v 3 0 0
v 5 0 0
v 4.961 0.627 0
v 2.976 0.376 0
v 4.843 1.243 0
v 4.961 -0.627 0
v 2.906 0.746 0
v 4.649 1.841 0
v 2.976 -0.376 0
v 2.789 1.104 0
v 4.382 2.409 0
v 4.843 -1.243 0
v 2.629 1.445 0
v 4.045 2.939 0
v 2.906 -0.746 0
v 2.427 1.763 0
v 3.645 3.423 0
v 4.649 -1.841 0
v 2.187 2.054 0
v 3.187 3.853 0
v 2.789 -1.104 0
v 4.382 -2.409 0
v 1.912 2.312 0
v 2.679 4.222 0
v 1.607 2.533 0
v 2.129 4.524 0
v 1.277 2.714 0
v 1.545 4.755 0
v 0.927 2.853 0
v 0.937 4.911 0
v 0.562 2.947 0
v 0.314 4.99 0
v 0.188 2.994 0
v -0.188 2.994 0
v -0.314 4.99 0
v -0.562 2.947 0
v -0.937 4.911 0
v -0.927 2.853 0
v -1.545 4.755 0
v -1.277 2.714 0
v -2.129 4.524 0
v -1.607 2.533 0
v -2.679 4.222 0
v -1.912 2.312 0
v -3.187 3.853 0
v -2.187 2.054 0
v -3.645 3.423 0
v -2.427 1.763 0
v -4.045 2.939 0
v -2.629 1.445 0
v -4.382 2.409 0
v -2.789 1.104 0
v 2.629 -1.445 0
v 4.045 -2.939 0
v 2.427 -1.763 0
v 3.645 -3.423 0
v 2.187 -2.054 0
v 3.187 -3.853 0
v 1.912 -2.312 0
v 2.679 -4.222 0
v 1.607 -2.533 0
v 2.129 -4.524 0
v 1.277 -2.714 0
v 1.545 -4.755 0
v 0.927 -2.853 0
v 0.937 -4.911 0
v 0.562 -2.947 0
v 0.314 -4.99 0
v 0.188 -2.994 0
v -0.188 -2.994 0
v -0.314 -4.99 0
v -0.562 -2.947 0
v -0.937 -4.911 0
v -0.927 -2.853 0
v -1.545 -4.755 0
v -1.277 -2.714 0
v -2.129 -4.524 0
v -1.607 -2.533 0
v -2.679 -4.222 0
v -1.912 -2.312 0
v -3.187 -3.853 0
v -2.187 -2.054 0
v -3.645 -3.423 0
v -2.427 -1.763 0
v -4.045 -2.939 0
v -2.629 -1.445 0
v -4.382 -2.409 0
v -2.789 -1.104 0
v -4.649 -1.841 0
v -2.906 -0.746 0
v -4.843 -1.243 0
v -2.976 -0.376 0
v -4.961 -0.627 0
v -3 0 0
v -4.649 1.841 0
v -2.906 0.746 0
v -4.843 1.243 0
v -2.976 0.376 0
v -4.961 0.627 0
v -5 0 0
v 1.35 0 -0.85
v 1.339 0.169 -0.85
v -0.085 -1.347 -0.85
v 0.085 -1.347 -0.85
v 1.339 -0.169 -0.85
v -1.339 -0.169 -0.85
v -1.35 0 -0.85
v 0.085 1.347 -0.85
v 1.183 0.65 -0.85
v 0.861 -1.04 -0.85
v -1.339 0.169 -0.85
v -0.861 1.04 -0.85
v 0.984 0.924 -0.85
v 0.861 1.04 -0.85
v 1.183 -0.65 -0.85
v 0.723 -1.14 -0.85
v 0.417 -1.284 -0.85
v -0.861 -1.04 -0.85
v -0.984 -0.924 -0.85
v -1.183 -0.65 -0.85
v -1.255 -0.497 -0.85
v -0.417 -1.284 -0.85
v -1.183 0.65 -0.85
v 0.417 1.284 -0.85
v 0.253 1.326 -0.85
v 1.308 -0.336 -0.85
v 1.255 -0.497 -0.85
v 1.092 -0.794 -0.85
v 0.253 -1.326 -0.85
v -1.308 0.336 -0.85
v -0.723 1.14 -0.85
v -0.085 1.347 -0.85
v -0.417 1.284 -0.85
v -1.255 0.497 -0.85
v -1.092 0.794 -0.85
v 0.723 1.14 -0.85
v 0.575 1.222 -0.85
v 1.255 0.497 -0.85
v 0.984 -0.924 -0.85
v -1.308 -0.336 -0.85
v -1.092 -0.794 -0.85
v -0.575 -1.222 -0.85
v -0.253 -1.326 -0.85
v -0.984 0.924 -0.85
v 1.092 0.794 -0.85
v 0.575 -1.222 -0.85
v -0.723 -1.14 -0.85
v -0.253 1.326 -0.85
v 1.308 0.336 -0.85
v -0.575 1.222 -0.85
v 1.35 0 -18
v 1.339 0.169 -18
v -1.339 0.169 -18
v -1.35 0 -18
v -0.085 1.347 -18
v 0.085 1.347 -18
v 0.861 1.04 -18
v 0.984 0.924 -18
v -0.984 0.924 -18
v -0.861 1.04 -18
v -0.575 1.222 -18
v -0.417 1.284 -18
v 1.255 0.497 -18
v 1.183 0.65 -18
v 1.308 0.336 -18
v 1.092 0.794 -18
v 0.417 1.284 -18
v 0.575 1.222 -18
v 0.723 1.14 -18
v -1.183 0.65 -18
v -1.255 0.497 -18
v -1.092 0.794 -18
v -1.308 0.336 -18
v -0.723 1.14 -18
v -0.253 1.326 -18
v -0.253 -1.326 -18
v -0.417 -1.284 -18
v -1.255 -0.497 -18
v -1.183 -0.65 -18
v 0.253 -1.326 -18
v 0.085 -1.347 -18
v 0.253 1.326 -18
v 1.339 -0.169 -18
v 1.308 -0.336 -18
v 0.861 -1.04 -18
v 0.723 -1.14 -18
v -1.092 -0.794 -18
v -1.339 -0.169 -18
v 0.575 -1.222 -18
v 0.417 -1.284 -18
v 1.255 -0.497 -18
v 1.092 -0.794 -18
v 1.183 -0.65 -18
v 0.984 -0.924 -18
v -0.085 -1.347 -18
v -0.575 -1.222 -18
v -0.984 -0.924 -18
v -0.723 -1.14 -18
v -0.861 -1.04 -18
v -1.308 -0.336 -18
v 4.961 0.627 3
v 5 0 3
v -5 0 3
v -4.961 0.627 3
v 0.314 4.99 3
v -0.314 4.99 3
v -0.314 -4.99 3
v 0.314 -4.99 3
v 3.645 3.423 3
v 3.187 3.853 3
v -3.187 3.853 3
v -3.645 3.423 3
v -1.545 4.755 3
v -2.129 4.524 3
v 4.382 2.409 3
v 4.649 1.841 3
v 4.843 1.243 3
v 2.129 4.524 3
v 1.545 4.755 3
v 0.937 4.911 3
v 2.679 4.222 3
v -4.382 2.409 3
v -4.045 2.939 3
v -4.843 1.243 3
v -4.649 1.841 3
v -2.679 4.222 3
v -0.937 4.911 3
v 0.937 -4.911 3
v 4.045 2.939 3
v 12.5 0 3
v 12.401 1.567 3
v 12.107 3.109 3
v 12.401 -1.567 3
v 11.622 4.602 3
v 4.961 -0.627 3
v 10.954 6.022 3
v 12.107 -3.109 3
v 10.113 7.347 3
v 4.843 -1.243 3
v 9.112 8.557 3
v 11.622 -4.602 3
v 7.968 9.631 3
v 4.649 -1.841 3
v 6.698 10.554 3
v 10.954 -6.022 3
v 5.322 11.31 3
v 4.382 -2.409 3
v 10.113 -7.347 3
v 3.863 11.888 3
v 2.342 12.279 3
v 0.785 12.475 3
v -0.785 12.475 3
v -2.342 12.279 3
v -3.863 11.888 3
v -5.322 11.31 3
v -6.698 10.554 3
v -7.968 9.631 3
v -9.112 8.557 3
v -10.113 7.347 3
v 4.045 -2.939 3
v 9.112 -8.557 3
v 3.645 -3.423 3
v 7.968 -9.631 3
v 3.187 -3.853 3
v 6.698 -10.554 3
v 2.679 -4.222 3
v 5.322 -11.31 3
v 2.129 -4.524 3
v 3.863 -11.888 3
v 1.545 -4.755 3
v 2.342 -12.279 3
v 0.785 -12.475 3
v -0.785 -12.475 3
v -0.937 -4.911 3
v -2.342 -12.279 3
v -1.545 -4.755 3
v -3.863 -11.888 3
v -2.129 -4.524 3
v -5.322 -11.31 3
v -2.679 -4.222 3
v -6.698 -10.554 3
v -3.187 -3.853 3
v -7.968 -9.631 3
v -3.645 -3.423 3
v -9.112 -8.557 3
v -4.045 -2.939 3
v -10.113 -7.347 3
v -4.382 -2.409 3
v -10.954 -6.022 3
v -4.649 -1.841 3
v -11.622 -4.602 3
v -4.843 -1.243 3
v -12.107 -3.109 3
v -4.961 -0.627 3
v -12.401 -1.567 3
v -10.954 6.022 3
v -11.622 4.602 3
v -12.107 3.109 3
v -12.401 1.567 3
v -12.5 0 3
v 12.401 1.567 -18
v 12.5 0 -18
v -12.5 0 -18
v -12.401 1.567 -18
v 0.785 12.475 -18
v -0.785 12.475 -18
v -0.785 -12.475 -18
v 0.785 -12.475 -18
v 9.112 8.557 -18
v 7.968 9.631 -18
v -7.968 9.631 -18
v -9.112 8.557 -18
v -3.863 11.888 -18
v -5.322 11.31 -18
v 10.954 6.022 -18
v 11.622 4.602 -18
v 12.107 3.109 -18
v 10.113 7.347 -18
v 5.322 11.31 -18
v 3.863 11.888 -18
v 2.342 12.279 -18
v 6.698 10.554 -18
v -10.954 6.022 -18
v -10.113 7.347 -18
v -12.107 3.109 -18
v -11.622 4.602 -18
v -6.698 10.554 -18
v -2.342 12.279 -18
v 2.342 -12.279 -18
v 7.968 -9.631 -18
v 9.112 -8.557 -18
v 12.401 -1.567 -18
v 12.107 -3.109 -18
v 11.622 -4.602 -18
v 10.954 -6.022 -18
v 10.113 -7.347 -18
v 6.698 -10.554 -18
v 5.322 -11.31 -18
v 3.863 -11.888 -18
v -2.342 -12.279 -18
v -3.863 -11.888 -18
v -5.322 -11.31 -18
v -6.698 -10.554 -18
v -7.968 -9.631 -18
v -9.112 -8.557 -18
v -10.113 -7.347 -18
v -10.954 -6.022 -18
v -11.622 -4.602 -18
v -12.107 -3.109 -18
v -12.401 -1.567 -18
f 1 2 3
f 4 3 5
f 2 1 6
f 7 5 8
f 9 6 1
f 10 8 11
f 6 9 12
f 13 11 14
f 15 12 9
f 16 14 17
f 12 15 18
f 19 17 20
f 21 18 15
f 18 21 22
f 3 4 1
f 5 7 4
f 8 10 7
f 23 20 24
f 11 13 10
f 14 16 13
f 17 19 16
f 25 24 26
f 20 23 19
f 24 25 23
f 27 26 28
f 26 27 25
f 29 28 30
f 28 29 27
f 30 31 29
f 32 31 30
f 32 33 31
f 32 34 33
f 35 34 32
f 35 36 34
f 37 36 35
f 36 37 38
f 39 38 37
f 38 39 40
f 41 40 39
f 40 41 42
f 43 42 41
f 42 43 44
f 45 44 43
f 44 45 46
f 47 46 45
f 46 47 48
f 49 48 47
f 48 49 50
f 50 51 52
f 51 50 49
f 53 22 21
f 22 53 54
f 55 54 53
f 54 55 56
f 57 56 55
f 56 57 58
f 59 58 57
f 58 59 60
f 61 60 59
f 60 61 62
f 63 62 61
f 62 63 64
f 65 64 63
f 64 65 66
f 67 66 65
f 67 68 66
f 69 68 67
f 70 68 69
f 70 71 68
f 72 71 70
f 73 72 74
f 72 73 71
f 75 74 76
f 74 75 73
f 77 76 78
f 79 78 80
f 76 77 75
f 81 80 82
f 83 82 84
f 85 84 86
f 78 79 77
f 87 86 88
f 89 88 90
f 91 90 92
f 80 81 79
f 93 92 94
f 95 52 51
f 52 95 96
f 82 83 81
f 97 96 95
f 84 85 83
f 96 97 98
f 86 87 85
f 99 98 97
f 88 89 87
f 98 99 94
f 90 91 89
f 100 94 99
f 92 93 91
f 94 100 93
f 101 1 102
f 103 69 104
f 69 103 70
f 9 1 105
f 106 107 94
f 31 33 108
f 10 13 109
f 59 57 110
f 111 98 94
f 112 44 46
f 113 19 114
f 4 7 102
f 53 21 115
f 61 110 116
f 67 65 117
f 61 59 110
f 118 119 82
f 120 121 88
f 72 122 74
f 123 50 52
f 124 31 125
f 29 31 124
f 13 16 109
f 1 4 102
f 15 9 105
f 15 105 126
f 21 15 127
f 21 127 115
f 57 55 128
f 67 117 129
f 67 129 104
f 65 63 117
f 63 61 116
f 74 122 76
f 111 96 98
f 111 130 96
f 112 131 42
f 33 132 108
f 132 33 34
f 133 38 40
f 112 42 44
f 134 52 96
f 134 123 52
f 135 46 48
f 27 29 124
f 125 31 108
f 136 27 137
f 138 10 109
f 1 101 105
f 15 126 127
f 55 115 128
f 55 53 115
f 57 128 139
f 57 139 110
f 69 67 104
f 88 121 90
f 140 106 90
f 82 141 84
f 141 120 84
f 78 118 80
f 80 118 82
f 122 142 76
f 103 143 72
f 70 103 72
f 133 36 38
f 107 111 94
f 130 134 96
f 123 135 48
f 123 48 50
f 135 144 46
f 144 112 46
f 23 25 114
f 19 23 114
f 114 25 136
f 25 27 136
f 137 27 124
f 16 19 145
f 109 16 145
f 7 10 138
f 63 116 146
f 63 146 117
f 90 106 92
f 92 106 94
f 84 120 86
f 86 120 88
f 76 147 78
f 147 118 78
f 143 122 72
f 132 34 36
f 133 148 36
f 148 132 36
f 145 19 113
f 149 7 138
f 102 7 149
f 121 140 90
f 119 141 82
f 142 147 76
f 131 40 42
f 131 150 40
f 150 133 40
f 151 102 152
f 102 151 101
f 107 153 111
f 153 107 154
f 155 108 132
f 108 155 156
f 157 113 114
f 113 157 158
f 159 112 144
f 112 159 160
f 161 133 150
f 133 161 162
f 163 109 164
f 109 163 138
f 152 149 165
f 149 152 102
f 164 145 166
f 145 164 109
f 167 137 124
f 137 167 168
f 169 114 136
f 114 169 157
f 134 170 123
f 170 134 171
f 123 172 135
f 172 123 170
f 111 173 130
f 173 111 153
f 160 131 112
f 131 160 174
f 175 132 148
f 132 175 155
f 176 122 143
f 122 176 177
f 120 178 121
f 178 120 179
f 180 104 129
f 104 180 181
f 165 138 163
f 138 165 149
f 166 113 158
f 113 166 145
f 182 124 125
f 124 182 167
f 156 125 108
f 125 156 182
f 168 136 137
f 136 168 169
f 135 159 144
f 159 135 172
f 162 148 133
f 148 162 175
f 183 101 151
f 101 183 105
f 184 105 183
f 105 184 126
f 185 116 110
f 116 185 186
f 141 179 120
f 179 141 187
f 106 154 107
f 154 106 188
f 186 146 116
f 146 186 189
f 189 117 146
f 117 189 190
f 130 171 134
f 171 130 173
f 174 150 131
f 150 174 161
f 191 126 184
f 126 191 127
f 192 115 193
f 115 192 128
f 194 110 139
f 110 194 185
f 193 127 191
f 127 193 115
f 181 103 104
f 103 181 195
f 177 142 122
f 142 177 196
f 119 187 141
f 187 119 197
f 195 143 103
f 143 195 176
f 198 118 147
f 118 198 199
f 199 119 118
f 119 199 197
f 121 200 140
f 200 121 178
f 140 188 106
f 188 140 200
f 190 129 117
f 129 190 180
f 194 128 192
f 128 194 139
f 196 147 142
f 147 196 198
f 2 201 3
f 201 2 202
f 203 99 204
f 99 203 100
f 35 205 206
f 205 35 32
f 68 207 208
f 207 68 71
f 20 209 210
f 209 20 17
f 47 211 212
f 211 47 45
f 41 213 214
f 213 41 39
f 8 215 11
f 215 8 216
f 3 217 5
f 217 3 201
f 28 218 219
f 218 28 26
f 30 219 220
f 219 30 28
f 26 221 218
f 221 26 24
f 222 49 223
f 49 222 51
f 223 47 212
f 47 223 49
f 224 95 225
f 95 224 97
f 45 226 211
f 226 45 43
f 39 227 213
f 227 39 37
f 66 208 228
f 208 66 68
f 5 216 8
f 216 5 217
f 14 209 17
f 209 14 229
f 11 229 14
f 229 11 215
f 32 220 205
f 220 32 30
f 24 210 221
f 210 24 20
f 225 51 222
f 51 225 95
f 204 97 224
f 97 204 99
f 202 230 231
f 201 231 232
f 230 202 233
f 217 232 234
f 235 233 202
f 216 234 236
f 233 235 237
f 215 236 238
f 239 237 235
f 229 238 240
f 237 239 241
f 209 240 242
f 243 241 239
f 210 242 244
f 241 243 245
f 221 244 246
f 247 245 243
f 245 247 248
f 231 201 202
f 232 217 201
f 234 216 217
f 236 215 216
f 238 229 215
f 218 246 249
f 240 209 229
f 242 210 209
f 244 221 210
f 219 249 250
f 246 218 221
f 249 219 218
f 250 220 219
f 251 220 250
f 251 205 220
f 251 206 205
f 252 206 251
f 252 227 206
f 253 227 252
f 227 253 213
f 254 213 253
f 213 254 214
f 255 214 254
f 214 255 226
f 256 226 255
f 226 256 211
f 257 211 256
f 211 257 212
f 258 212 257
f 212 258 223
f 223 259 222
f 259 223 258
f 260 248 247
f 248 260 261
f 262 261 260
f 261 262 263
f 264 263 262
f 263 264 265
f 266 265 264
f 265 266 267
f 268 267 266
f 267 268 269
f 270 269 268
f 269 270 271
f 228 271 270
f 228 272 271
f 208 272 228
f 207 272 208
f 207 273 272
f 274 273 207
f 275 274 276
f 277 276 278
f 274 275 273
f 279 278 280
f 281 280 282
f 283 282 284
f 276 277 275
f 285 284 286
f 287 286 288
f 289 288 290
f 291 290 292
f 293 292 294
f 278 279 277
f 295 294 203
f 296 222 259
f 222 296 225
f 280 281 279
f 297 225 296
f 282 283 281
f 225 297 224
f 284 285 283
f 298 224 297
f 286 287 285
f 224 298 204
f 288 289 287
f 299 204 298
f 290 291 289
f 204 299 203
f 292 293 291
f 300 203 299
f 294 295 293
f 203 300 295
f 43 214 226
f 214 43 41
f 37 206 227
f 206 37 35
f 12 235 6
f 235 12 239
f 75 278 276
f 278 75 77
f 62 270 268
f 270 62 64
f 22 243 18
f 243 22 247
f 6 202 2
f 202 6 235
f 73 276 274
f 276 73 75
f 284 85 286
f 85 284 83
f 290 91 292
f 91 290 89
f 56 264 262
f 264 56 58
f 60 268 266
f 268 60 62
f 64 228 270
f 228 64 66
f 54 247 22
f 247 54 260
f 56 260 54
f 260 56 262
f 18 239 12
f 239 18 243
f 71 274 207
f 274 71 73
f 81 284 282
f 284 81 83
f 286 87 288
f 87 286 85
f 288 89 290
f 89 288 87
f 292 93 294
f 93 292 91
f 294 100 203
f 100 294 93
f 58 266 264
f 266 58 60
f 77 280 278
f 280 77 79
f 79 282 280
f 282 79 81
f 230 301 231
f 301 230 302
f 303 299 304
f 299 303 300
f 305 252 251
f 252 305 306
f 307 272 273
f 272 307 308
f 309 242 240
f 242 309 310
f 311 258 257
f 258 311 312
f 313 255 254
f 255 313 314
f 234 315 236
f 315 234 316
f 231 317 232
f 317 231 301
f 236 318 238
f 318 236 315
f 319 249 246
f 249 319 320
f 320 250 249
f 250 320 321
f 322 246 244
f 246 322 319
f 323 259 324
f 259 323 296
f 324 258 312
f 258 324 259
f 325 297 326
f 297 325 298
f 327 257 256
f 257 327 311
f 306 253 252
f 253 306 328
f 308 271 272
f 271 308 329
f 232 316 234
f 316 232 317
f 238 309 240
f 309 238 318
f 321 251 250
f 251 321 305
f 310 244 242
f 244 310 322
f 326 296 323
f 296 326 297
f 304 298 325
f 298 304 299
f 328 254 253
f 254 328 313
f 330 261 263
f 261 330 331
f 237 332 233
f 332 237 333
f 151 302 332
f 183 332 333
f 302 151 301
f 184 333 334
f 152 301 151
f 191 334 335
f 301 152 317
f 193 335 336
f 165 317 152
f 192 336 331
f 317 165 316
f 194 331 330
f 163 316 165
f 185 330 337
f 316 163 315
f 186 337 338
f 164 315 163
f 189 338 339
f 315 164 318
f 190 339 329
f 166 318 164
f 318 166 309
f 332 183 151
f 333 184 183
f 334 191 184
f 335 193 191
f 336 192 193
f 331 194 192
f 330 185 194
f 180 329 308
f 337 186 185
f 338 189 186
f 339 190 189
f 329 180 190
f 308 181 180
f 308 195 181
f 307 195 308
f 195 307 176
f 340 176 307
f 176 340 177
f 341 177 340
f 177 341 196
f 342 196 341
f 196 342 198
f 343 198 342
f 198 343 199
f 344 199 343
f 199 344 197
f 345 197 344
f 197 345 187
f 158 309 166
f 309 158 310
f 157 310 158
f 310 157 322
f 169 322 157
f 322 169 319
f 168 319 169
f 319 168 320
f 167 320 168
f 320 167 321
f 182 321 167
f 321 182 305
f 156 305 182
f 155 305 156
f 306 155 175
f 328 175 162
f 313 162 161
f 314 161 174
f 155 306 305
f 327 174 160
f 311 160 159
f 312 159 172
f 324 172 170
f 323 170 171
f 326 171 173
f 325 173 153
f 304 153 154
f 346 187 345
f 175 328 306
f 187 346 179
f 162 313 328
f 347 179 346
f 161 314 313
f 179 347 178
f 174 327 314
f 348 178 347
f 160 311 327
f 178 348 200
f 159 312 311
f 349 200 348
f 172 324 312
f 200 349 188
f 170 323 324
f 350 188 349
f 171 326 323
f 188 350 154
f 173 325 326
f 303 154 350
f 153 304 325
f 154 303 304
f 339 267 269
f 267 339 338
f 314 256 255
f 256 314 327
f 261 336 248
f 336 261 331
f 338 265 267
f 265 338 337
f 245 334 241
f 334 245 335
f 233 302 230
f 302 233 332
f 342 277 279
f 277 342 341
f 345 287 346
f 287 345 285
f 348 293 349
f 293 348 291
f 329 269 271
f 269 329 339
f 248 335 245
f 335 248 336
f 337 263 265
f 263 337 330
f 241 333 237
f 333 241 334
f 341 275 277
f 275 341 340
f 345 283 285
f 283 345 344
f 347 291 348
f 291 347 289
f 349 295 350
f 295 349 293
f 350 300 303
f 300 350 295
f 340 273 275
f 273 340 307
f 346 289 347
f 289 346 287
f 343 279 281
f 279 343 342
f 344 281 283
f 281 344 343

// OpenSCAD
$fn = 50;


difference() {
	union() {
		translate(v = [0, 0, -18.0000000000]) {
			cylinder(h = 21, r = 12.5000000000);
		}
	}
	union() {
		translate(v = [0, 0, 0]) {
			rotate(a = [0, 0, 0]) {
				difference() {
					union() {
						translate(v = [0, 0, -21.0000000000]) {
							cylinder(h = 21, r = 1.0000000000);
						}
						translate(v = [0, 0, -0.8500000000]) {
							cylinder(h = 0.8500000000, r1 = 1.3500000000, r2 = 3.0000000000);
						}
						translate(v = [0, 0, -21.0000000000]) {
							cylinder(h = 21, r = 1.3500000000);
						}
						translate(v = [0, 0, -21.0000000000]) {
							cylinder(h = 21, r = 1.0000000000);
						}
					}
					union();
				}
			}
		}
		#cylinder(h = 3, r = 5.0000000000);
	}
}
